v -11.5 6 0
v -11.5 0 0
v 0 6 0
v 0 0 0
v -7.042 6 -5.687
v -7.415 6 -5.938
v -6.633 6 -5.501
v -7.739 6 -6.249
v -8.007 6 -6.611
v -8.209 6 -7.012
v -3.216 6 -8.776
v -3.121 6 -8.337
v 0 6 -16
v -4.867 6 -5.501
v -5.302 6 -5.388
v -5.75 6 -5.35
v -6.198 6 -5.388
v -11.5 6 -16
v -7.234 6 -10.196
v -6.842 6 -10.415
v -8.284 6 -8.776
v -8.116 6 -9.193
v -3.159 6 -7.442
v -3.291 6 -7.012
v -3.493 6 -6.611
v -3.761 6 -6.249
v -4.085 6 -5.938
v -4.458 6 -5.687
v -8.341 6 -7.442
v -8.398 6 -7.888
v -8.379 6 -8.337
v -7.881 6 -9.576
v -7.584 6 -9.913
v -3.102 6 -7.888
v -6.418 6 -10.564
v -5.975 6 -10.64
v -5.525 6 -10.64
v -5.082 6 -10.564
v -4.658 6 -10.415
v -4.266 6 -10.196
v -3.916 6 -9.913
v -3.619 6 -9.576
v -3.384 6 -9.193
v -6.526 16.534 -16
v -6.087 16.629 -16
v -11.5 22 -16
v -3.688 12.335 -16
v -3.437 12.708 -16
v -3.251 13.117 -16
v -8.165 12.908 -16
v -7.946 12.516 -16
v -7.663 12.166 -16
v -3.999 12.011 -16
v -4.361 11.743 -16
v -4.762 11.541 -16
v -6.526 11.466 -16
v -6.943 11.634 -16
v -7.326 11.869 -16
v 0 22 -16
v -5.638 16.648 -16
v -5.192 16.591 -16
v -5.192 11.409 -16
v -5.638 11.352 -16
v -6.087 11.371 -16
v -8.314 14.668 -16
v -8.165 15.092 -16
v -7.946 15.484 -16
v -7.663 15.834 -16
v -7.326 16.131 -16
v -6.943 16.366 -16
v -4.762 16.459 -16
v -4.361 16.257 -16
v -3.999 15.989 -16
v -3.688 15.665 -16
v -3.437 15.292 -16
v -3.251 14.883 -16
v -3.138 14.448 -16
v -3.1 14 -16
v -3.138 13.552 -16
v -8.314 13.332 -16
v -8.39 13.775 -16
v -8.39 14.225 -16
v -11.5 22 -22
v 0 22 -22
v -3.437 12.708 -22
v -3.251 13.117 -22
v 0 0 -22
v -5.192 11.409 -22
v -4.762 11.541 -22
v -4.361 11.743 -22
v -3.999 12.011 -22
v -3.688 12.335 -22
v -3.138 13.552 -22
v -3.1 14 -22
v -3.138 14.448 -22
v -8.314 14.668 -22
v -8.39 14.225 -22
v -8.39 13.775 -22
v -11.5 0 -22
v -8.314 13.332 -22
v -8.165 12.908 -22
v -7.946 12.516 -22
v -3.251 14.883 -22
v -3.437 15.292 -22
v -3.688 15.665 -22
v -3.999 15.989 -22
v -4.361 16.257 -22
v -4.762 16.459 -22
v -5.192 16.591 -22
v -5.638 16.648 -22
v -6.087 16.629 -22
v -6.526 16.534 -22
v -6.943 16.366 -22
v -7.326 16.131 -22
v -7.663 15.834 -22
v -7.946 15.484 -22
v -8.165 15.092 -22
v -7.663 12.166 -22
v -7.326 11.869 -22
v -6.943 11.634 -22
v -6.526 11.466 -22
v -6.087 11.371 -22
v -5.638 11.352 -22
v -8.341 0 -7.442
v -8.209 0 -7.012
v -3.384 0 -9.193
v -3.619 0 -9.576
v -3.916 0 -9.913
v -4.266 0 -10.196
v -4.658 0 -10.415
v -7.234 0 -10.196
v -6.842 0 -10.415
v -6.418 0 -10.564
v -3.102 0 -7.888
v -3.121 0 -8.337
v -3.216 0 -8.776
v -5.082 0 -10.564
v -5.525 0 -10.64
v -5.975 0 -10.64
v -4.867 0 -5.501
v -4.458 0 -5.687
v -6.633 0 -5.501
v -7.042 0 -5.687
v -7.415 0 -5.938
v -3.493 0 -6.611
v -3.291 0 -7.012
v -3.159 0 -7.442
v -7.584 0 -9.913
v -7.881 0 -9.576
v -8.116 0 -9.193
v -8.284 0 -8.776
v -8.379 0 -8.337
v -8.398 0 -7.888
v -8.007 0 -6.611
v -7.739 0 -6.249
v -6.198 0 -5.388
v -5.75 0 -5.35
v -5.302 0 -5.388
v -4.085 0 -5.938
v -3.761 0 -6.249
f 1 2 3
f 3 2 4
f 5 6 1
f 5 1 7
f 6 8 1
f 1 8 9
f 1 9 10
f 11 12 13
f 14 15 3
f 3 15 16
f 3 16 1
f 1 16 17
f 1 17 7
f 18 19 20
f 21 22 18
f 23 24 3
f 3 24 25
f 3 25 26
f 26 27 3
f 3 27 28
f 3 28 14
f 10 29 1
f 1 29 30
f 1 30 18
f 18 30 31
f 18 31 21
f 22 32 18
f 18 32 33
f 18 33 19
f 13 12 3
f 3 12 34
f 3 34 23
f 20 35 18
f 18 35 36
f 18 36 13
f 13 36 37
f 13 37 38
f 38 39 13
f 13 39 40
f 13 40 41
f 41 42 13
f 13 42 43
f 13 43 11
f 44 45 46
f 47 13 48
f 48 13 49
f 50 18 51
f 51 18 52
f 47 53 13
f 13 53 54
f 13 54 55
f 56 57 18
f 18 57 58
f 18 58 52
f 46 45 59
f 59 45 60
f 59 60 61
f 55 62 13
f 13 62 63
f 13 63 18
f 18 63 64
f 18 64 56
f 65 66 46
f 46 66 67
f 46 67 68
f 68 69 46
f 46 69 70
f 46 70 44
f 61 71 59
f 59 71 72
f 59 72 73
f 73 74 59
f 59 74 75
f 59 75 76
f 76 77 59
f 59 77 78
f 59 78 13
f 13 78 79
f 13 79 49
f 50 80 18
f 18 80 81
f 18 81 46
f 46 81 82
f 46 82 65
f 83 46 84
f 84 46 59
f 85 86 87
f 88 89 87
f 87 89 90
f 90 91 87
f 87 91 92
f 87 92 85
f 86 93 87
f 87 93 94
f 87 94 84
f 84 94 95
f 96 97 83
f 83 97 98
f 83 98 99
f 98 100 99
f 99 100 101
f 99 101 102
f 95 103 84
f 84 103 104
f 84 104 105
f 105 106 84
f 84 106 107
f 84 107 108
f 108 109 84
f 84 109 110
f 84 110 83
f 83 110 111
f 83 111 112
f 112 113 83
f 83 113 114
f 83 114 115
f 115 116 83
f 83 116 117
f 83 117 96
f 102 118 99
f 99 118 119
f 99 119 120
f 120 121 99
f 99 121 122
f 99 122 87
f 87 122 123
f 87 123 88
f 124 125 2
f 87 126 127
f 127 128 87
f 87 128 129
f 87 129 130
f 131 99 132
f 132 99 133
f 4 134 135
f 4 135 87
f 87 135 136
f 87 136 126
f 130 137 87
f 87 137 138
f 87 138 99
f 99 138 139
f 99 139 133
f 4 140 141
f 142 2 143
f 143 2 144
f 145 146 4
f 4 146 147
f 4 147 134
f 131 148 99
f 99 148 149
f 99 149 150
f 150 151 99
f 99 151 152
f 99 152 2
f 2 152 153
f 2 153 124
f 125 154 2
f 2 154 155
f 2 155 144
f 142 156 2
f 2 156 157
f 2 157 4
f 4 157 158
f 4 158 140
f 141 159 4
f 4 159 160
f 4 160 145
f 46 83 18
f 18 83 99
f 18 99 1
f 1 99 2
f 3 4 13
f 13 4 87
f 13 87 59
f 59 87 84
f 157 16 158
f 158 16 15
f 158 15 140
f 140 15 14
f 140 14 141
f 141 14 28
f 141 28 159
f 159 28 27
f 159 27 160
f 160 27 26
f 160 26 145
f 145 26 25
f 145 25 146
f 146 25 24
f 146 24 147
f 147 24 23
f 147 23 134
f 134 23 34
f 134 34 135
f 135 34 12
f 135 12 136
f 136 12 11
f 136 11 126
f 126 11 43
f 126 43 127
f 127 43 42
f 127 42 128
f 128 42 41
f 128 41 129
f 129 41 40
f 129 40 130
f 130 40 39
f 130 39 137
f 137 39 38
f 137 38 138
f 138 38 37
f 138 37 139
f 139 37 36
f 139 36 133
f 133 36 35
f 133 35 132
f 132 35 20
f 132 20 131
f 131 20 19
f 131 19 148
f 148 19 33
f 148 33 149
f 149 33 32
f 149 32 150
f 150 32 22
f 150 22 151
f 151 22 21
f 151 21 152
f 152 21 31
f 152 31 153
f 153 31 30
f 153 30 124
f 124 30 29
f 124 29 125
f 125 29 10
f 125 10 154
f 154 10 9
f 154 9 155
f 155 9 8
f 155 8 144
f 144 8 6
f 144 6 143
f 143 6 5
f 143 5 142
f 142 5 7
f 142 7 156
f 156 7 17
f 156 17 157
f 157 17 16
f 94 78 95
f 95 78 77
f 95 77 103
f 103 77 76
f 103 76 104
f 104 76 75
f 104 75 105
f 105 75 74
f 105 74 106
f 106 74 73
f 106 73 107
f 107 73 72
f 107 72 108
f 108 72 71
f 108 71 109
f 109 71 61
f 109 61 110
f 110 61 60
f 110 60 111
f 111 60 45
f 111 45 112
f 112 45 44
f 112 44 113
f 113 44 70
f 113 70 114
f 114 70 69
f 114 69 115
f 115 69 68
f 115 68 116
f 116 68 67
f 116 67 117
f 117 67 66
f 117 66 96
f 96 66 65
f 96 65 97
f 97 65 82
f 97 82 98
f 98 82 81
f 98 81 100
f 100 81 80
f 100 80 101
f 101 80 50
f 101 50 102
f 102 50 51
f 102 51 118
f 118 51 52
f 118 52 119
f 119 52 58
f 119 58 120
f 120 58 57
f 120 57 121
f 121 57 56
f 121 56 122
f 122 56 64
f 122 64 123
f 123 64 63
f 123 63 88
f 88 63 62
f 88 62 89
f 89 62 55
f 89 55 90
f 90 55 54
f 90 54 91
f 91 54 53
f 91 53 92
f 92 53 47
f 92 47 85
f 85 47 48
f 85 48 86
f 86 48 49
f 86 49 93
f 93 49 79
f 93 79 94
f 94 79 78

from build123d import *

# Parameters (mm, degrees)
BOSS_EXTRUDE1_DEPTH = 11.5
SKETCH2_R           = 2.65
CUT_EXTRUDE1_DEPTH  = 30.533878851
SKETCH3_R           = 2.65
CUT_EXTRUDE2_DEPTH  = 30.533878851


with BuildPart() as part:
    # Sketch1 → Boss-Extrude1 (new body)
    with BuildSketch(Plane(origin=(0, 0, 0), x_dir=(0, 0, -1), z_dir=(1, 0, 0))):
        Polygon((0, 0), (22, 0), (22, 22), (16, 22), (16, 6), (0, 6), align=None)
    extrude(amount=-BOSS_EXTRUDE1_DEPTH)

    # Sketch2 → Cut-Extrude1 (cut, through all)
    with BuildSketch(Plane(origin=(0, 6, 0), x_dir=(1, 0, 0), z_dir=(0, 1, 0))):
        with Locations(Location((-5.75, 8, 0), (0, 0, 270))):
            Circle(SKETCH2_R)
    extrude(amount=-CUT_EXTRUDE1_DEPTH, mode=Mode.SUBTRACT)

    # Sketch3 → Cut-Extrude2 (cut, through all)
    with BuildSketch(Plane.XY.offset(-16)):
        with Locations((-5.75, 14)):
            Circle(SKETCH3_R)
    extrude(amount=-CUT_EXTRUDE2_DEPTH, mode=Mode.SUBTRACT)


solid = part.part
